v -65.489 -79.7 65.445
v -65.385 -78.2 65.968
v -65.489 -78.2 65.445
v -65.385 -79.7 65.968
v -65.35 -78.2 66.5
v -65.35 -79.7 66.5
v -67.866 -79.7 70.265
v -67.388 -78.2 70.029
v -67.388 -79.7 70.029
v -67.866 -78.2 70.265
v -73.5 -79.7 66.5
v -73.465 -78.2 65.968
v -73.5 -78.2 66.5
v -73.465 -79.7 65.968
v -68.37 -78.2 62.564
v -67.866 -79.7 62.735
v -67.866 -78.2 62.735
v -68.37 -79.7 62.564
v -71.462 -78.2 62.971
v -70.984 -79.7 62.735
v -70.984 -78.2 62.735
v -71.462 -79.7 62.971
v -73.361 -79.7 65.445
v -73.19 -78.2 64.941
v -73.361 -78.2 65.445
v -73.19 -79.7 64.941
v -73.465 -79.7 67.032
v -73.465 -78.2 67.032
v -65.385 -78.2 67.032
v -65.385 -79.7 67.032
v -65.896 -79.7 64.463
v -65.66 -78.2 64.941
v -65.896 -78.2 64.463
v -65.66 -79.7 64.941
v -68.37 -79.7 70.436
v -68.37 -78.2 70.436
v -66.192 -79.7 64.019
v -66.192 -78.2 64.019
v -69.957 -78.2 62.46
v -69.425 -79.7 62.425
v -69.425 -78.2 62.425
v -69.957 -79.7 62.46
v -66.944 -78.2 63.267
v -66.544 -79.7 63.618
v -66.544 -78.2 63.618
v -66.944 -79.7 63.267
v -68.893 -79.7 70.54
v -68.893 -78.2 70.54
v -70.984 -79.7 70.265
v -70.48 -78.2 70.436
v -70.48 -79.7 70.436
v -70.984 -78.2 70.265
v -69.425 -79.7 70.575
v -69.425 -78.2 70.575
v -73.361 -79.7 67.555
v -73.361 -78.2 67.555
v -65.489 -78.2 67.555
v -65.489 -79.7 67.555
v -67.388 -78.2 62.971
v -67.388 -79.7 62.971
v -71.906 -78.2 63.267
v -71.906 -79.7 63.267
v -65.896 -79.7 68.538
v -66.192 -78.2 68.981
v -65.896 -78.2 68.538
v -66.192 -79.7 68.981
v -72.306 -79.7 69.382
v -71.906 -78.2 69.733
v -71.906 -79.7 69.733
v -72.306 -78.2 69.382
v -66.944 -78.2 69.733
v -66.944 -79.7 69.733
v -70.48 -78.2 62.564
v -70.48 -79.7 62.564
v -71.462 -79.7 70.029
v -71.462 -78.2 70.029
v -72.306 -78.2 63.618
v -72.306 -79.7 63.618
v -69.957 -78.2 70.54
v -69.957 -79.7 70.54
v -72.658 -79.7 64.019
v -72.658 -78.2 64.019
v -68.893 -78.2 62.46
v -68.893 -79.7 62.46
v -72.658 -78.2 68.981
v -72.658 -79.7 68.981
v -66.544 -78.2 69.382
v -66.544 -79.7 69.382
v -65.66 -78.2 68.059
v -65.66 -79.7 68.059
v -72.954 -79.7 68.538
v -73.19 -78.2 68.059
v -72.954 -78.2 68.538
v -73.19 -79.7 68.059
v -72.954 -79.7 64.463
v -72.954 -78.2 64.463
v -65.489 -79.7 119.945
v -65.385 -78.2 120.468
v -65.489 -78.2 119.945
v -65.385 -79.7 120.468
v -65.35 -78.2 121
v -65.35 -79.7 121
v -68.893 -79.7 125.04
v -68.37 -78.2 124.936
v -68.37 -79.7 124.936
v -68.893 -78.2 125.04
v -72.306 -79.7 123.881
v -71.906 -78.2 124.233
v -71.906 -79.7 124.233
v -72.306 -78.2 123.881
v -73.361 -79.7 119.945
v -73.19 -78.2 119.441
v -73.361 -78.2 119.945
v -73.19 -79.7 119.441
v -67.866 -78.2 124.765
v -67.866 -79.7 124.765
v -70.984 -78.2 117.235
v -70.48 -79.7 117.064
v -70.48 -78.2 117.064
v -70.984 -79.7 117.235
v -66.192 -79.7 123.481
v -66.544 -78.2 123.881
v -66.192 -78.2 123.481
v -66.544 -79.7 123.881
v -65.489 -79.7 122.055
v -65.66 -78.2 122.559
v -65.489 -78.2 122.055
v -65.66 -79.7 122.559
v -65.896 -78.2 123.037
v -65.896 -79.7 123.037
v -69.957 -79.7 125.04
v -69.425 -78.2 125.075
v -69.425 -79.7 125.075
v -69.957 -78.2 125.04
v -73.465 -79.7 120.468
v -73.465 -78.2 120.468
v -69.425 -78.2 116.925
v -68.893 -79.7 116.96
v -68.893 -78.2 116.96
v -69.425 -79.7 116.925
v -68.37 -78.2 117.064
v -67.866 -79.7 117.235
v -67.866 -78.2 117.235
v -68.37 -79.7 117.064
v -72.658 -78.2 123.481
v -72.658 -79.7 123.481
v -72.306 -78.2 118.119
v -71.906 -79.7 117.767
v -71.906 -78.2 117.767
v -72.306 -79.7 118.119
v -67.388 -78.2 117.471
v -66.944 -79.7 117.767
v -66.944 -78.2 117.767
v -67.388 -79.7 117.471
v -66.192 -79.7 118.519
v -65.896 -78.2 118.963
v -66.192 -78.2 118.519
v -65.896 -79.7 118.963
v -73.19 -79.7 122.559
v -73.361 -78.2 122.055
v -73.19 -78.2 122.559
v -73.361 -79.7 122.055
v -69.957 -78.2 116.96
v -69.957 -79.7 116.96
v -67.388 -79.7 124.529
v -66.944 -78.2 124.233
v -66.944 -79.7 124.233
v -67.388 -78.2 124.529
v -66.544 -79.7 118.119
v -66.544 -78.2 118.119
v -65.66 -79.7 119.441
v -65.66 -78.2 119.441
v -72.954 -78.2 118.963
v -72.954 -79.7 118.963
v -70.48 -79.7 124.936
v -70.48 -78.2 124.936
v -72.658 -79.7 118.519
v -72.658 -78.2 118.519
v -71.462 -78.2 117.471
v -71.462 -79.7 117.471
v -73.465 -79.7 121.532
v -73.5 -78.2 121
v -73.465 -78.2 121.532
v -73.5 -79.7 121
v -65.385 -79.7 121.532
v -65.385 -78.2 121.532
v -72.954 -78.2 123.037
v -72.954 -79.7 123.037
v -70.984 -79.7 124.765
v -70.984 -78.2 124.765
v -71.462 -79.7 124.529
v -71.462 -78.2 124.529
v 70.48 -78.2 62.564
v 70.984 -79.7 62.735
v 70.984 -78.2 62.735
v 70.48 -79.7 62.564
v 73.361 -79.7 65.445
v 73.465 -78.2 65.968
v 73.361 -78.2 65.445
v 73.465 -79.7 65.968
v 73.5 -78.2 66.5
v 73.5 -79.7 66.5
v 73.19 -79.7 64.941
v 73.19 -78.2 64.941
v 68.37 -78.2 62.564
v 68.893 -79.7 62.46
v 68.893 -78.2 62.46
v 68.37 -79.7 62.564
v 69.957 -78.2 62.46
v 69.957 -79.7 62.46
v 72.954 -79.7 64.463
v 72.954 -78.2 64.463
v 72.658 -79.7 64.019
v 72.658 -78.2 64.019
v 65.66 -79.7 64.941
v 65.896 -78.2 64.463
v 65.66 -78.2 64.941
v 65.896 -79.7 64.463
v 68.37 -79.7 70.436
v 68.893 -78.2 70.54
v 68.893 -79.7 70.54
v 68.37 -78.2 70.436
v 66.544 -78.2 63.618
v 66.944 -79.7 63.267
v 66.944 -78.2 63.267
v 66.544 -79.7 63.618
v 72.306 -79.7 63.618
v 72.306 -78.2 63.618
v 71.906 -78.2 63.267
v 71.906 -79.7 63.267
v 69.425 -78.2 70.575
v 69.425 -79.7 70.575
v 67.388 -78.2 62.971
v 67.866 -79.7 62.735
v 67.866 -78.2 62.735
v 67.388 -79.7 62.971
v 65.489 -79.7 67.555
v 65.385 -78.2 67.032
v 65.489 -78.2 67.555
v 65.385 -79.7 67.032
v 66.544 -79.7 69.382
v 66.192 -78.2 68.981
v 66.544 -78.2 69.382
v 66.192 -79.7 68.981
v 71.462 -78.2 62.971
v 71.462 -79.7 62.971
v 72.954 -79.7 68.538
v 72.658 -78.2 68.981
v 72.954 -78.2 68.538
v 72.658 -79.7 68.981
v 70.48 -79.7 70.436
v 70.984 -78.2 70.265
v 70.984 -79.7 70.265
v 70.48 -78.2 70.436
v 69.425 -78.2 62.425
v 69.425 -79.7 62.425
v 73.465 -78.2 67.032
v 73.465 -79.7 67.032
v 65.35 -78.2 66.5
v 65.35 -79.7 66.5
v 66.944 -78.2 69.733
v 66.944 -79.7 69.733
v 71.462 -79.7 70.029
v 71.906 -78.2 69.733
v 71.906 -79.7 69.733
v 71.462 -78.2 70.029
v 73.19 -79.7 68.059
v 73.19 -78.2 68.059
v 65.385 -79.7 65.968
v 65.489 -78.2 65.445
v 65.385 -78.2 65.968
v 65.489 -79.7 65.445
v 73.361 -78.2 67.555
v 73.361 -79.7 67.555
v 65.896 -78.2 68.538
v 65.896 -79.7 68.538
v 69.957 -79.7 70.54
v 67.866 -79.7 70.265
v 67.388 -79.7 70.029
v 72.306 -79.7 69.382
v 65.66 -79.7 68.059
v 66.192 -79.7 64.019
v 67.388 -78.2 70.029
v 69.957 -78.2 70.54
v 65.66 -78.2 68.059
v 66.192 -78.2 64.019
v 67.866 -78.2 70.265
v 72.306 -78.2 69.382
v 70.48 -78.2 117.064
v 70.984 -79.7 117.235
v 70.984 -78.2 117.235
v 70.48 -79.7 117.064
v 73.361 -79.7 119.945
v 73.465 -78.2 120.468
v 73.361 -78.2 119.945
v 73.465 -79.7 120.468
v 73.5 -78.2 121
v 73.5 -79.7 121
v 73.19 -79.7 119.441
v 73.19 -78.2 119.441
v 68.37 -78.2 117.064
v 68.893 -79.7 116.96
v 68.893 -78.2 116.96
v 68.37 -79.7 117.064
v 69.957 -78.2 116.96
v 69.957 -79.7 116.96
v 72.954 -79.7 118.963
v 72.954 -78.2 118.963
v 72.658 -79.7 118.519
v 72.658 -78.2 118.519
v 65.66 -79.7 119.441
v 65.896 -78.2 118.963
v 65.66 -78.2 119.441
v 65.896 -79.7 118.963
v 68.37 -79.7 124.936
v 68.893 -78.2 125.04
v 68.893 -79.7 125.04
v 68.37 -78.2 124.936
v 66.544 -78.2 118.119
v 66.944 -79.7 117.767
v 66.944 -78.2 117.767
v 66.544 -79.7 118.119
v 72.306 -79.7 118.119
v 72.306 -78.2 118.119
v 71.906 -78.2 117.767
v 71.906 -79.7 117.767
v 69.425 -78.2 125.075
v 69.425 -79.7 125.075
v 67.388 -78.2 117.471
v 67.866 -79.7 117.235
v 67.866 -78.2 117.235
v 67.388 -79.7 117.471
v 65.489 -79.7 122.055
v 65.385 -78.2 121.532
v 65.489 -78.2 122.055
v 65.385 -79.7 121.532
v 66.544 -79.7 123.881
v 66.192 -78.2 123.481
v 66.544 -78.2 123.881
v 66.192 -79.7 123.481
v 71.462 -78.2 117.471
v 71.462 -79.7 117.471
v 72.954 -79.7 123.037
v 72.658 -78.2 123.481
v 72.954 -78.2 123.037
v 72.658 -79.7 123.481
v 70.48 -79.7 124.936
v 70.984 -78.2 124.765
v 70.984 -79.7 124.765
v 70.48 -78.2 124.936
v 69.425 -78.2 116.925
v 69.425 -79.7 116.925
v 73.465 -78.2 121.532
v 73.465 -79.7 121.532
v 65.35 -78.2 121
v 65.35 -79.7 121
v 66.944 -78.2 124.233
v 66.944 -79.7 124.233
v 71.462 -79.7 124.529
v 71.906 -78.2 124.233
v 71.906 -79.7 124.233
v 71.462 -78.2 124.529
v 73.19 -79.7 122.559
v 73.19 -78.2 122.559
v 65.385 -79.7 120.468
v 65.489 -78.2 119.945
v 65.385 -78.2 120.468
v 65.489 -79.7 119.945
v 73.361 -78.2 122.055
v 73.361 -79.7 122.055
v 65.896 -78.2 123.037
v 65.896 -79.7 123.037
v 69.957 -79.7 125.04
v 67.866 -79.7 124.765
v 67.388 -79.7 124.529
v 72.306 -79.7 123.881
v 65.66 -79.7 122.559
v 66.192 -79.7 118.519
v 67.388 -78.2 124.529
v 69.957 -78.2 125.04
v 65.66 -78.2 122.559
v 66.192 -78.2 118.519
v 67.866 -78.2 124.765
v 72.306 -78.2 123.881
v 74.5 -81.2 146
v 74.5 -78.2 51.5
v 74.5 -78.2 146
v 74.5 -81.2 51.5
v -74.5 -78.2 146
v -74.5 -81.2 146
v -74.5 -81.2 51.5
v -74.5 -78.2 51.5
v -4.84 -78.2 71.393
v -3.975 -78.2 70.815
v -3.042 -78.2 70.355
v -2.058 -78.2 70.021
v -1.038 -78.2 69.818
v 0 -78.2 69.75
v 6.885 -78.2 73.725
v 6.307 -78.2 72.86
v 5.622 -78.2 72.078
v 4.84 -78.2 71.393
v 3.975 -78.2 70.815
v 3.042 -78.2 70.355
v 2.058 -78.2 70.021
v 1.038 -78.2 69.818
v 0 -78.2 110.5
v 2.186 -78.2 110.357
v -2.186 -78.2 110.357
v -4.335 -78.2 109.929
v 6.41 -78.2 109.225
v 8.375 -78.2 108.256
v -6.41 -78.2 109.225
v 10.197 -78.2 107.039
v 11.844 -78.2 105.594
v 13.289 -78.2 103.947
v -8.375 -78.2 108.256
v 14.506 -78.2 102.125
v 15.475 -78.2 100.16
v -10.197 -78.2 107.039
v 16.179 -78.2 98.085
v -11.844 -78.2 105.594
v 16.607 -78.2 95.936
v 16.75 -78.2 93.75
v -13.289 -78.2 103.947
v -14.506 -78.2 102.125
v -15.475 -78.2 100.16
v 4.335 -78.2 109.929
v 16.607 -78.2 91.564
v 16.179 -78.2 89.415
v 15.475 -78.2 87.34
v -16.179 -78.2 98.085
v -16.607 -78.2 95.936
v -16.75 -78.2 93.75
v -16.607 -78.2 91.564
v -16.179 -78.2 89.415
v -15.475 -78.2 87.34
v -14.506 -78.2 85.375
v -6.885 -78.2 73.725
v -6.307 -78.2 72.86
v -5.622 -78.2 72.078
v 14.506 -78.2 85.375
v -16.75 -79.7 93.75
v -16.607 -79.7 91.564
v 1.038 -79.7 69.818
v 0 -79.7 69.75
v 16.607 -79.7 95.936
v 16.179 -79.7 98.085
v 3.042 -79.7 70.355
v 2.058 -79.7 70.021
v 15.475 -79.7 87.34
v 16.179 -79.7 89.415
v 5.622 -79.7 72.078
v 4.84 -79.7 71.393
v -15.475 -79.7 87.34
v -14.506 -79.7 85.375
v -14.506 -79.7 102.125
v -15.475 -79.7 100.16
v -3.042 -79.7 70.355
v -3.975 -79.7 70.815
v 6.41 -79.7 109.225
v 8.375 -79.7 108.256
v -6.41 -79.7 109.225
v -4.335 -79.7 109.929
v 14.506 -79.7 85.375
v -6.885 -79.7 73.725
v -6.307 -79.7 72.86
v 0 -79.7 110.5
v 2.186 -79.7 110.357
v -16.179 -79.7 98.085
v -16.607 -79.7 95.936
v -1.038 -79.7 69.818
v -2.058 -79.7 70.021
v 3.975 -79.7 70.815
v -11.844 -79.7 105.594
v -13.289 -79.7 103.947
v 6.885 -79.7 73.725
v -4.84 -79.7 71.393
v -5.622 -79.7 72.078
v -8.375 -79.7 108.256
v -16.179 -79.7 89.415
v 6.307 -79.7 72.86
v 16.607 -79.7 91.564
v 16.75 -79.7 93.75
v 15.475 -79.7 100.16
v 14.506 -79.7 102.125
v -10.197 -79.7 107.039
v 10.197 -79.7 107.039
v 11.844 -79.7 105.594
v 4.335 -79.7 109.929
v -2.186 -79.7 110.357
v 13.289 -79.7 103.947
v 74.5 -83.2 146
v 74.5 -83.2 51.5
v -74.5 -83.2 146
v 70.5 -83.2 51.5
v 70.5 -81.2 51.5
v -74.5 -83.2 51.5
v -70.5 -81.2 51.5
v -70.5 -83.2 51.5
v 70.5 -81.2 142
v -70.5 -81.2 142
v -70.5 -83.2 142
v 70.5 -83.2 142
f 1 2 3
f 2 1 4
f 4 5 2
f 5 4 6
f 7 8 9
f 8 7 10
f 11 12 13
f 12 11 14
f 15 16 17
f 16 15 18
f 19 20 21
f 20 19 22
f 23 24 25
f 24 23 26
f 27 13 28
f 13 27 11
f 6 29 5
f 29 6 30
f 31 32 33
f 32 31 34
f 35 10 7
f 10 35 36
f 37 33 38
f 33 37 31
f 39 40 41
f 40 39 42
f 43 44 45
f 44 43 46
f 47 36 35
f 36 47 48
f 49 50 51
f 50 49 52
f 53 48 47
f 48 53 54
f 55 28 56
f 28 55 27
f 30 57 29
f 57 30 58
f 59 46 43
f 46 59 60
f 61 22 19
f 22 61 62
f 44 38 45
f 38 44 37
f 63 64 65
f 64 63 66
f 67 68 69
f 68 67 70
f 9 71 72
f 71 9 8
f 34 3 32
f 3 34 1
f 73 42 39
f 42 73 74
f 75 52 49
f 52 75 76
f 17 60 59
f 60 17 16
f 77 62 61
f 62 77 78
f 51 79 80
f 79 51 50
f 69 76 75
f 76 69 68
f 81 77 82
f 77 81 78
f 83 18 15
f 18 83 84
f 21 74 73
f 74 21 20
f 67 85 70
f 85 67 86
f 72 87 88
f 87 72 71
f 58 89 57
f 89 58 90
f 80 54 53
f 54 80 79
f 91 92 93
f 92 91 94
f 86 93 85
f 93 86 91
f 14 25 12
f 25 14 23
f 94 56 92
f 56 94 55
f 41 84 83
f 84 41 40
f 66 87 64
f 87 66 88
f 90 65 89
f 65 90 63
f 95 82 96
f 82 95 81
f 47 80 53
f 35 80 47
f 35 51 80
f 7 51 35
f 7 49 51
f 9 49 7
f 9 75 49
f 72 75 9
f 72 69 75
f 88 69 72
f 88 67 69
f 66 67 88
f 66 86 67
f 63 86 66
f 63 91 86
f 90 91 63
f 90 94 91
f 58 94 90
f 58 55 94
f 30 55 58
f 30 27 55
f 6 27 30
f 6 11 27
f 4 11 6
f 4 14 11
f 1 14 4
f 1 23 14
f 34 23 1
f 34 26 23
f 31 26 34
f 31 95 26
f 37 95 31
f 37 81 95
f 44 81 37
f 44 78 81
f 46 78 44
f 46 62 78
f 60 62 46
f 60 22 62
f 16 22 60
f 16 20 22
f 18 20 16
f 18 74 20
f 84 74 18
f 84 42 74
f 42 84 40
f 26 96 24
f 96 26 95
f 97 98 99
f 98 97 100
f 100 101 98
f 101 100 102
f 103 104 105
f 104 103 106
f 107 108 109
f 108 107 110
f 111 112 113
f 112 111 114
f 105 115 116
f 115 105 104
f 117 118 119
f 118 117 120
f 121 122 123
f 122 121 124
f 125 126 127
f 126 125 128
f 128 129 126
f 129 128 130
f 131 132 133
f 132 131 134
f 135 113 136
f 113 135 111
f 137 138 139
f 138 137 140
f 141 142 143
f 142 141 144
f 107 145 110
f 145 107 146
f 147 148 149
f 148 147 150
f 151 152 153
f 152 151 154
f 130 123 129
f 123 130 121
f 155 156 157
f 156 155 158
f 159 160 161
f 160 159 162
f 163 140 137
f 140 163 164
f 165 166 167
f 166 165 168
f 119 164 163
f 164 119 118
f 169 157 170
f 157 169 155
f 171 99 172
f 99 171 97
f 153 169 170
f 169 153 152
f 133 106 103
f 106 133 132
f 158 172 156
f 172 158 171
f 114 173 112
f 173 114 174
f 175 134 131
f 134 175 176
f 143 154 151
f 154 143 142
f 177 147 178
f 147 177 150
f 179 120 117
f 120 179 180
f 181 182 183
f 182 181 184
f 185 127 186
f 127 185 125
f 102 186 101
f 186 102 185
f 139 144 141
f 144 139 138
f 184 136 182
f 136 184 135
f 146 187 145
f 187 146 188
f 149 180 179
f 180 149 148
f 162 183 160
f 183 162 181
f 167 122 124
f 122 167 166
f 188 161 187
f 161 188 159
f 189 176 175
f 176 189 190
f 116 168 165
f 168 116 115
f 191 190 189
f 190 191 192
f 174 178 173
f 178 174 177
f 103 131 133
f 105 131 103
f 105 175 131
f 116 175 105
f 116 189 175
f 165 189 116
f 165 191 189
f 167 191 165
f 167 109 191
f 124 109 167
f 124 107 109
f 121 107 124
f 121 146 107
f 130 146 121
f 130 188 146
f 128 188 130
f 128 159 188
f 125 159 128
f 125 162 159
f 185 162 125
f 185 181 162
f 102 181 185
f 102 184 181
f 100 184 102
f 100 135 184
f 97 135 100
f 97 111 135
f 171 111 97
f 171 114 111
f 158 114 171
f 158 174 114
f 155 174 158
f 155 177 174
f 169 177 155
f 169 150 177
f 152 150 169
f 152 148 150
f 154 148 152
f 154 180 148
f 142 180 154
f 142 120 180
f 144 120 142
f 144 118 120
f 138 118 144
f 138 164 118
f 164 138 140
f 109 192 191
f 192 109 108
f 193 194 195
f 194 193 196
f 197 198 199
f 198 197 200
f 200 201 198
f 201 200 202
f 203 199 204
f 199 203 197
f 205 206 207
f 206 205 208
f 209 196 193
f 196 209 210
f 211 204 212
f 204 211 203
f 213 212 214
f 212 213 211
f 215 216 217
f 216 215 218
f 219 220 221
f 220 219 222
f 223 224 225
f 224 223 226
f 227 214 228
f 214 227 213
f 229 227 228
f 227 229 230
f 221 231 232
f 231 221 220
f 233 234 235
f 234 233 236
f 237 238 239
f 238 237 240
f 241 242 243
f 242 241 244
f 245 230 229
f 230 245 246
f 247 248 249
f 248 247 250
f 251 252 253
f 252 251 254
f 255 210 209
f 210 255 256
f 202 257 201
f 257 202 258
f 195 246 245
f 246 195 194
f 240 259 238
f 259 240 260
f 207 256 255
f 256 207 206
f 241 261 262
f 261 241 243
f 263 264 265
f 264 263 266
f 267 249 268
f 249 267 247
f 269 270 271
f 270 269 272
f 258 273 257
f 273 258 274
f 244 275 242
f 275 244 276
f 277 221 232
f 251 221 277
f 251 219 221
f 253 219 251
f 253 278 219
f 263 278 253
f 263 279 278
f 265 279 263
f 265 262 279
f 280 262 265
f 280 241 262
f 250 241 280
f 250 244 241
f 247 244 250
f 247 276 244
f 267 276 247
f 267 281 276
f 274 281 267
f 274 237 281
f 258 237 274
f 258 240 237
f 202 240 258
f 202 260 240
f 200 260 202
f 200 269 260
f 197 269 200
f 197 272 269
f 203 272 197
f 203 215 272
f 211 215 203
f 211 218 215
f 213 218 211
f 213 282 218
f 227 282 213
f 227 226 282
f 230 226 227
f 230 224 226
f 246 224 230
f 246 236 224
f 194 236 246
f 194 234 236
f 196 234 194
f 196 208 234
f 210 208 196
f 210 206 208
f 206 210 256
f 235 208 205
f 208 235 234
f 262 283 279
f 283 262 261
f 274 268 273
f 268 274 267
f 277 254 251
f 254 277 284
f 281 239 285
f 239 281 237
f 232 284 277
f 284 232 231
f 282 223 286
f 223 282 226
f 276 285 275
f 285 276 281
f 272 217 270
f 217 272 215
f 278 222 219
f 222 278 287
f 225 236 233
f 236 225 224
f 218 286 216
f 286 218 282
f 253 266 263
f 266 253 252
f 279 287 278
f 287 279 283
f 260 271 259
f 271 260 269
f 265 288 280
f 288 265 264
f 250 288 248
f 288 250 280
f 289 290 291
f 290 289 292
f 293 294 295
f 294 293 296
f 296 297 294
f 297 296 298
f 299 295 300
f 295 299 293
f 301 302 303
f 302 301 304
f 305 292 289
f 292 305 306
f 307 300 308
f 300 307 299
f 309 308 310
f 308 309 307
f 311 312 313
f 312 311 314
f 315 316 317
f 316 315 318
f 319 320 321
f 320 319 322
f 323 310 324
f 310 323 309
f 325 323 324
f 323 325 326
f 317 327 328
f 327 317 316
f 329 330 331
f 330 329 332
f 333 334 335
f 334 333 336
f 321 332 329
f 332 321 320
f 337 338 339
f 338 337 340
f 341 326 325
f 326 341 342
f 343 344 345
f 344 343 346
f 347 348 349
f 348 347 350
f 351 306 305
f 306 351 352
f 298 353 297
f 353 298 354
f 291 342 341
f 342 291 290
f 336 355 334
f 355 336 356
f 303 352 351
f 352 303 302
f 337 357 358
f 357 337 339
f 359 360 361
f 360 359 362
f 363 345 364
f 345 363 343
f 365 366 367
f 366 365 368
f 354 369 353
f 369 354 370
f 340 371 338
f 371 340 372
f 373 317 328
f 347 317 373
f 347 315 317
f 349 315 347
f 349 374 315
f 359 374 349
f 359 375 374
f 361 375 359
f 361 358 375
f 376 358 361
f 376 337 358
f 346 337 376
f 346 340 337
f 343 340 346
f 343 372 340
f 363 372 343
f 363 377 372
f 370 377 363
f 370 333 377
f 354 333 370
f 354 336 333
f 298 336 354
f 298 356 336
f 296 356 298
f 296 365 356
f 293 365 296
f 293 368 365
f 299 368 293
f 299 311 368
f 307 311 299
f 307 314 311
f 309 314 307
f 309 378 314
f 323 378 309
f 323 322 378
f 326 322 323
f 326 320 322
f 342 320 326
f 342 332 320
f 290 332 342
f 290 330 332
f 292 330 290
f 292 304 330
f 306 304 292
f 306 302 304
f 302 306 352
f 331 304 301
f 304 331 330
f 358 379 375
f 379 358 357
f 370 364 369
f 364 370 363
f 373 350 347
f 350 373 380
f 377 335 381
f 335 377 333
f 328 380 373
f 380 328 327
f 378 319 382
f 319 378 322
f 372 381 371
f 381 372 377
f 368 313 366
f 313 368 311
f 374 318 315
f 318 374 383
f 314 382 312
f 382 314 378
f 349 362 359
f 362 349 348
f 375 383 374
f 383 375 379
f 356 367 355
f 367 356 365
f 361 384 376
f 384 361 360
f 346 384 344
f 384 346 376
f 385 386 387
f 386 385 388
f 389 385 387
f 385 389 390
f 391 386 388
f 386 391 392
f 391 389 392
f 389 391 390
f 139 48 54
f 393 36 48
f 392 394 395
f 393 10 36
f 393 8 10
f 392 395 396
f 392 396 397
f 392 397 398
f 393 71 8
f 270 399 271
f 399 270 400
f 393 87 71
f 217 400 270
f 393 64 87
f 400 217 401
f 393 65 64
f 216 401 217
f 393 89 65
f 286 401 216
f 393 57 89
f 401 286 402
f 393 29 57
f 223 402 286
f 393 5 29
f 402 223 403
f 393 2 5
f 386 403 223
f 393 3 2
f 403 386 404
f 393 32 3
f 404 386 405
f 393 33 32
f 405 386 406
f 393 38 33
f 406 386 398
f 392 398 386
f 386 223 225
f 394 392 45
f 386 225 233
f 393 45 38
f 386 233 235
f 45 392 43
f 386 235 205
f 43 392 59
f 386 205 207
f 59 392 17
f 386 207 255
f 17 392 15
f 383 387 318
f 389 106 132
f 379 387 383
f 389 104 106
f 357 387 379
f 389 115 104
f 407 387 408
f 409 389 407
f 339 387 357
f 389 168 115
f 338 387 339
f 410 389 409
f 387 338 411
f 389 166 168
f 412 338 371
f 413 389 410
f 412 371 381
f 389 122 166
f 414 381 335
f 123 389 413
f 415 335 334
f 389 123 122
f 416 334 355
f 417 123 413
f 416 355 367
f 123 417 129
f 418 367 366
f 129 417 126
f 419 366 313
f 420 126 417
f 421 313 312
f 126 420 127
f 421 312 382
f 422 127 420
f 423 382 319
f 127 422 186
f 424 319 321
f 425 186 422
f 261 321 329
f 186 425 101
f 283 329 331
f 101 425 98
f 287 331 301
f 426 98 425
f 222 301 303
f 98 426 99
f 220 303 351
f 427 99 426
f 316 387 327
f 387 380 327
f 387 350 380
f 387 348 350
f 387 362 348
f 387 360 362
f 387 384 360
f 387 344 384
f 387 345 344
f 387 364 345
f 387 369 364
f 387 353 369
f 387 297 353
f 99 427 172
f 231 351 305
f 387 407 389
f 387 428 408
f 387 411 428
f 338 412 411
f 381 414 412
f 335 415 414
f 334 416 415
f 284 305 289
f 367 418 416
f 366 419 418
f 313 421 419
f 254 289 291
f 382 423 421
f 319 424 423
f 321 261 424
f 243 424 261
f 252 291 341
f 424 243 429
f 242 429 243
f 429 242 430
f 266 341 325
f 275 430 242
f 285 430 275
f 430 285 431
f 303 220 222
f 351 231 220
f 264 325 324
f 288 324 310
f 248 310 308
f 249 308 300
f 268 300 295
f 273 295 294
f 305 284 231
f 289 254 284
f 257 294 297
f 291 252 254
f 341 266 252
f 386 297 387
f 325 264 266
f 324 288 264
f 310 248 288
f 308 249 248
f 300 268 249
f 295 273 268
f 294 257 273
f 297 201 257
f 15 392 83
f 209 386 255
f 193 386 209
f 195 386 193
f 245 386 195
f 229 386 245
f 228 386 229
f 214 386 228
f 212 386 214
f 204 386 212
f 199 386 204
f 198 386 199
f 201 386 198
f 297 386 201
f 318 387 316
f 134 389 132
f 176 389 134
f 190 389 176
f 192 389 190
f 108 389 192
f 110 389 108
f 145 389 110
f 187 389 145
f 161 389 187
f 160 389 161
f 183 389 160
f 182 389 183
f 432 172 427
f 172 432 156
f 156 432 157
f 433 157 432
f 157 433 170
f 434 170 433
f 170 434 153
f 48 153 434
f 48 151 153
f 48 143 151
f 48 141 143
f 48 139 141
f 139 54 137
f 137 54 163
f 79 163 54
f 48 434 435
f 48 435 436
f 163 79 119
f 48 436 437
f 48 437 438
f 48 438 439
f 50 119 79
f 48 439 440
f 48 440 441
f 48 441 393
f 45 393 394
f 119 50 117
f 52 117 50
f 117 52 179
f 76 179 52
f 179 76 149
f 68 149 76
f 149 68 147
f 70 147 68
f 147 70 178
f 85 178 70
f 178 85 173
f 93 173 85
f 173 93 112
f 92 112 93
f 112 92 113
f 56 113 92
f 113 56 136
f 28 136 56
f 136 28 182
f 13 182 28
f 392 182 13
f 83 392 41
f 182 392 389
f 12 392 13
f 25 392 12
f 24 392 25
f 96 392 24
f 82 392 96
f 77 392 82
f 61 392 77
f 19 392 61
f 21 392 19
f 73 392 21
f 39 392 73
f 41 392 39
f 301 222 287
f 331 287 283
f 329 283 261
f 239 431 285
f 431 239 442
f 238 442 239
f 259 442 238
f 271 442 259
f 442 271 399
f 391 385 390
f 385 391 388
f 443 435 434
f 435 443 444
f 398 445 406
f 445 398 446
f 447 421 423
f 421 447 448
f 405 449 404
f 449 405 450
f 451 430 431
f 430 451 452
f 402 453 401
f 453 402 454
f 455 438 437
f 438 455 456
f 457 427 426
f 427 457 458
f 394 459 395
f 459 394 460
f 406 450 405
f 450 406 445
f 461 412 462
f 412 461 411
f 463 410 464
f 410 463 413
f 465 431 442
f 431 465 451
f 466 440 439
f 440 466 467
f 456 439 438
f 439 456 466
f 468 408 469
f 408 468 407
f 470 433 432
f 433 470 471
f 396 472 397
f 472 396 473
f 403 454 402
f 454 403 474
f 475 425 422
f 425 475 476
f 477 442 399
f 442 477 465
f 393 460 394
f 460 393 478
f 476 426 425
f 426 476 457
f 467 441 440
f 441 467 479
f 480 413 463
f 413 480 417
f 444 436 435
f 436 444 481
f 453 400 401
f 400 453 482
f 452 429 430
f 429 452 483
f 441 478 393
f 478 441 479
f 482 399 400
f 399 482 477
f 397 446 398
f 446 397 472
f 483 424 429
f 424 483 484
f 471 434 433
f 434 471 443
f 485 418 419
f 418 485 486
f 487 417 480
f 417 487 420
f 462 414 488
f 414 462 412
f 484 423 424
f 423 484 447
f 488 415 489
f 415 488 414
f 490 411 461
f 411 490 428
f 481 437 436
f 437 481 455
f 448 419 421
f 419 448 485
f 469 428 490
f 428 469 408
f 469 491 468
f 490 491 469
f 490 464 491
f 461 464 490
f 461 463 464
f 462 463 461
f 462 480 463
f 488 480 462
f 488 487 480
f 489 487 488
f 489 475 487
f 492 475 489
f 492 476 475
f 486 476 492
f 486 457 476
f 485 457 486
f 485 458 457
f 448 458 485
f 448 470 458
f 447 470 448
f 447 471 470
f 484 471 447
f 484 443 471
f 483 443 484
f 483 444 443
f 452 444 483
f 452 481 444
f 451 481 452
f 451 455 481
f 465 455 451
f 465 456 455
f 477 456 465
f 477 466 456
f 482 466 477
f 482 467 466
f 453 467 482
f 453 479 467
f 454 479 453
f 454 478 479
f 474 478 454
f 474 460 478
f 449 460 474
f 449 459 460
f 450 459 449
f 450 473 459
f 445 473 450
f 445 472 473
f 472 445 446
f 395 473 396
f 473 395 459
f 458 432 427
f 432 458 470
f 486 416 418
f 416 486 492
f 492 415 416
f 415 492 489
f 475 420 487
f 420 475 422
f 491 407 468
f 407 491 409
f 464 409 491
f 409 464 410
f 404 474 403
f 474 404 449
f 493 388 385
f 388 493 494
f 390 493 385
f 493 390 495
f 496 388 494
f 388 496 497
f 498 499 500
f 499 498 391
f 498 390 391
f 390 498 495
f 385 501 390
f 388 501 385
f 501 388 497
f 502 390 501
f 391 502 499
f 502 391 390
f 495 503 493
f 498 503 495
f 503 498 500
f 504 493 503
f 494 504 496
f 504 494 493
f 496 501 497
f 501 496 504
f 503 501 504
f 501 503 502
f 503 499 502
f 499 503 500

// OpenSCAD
//
// ============================================================================
// SteamMachine UM790
// Project Phoenix
//
// Archivo  : nfc_panel_blank.scad
// Versión  : 1.0
// Fecha    : 2026-08-14
// Autor    : Pep Ventura (asistido por Claude)
//
// Panel NFC — SIN NINGÚN LOGO. Reutiliza la base compartida de
// nfc_panel.scad (nfcPanelBase(): sólido, marco, ventana del tag,
// imanes) tal cual, sin añadir ninguna marca — pedido del usuario
// para poner su propio diseño directamente desde Anycubic Slicer
// (p. ej. con una imagen/textura aplicada en el propio laminador).
//
// ============================================================================

include <../../../00_parametros.scad>;
include <../../reference/components/assembly_positions.scad>;

use <nfc_panel.scad>;

$fn = 64;

//=============================================================================
// PREVIEW
//=============================================================================

color([0.1,0.1,0.1,1])
    nfcPanelBase();
